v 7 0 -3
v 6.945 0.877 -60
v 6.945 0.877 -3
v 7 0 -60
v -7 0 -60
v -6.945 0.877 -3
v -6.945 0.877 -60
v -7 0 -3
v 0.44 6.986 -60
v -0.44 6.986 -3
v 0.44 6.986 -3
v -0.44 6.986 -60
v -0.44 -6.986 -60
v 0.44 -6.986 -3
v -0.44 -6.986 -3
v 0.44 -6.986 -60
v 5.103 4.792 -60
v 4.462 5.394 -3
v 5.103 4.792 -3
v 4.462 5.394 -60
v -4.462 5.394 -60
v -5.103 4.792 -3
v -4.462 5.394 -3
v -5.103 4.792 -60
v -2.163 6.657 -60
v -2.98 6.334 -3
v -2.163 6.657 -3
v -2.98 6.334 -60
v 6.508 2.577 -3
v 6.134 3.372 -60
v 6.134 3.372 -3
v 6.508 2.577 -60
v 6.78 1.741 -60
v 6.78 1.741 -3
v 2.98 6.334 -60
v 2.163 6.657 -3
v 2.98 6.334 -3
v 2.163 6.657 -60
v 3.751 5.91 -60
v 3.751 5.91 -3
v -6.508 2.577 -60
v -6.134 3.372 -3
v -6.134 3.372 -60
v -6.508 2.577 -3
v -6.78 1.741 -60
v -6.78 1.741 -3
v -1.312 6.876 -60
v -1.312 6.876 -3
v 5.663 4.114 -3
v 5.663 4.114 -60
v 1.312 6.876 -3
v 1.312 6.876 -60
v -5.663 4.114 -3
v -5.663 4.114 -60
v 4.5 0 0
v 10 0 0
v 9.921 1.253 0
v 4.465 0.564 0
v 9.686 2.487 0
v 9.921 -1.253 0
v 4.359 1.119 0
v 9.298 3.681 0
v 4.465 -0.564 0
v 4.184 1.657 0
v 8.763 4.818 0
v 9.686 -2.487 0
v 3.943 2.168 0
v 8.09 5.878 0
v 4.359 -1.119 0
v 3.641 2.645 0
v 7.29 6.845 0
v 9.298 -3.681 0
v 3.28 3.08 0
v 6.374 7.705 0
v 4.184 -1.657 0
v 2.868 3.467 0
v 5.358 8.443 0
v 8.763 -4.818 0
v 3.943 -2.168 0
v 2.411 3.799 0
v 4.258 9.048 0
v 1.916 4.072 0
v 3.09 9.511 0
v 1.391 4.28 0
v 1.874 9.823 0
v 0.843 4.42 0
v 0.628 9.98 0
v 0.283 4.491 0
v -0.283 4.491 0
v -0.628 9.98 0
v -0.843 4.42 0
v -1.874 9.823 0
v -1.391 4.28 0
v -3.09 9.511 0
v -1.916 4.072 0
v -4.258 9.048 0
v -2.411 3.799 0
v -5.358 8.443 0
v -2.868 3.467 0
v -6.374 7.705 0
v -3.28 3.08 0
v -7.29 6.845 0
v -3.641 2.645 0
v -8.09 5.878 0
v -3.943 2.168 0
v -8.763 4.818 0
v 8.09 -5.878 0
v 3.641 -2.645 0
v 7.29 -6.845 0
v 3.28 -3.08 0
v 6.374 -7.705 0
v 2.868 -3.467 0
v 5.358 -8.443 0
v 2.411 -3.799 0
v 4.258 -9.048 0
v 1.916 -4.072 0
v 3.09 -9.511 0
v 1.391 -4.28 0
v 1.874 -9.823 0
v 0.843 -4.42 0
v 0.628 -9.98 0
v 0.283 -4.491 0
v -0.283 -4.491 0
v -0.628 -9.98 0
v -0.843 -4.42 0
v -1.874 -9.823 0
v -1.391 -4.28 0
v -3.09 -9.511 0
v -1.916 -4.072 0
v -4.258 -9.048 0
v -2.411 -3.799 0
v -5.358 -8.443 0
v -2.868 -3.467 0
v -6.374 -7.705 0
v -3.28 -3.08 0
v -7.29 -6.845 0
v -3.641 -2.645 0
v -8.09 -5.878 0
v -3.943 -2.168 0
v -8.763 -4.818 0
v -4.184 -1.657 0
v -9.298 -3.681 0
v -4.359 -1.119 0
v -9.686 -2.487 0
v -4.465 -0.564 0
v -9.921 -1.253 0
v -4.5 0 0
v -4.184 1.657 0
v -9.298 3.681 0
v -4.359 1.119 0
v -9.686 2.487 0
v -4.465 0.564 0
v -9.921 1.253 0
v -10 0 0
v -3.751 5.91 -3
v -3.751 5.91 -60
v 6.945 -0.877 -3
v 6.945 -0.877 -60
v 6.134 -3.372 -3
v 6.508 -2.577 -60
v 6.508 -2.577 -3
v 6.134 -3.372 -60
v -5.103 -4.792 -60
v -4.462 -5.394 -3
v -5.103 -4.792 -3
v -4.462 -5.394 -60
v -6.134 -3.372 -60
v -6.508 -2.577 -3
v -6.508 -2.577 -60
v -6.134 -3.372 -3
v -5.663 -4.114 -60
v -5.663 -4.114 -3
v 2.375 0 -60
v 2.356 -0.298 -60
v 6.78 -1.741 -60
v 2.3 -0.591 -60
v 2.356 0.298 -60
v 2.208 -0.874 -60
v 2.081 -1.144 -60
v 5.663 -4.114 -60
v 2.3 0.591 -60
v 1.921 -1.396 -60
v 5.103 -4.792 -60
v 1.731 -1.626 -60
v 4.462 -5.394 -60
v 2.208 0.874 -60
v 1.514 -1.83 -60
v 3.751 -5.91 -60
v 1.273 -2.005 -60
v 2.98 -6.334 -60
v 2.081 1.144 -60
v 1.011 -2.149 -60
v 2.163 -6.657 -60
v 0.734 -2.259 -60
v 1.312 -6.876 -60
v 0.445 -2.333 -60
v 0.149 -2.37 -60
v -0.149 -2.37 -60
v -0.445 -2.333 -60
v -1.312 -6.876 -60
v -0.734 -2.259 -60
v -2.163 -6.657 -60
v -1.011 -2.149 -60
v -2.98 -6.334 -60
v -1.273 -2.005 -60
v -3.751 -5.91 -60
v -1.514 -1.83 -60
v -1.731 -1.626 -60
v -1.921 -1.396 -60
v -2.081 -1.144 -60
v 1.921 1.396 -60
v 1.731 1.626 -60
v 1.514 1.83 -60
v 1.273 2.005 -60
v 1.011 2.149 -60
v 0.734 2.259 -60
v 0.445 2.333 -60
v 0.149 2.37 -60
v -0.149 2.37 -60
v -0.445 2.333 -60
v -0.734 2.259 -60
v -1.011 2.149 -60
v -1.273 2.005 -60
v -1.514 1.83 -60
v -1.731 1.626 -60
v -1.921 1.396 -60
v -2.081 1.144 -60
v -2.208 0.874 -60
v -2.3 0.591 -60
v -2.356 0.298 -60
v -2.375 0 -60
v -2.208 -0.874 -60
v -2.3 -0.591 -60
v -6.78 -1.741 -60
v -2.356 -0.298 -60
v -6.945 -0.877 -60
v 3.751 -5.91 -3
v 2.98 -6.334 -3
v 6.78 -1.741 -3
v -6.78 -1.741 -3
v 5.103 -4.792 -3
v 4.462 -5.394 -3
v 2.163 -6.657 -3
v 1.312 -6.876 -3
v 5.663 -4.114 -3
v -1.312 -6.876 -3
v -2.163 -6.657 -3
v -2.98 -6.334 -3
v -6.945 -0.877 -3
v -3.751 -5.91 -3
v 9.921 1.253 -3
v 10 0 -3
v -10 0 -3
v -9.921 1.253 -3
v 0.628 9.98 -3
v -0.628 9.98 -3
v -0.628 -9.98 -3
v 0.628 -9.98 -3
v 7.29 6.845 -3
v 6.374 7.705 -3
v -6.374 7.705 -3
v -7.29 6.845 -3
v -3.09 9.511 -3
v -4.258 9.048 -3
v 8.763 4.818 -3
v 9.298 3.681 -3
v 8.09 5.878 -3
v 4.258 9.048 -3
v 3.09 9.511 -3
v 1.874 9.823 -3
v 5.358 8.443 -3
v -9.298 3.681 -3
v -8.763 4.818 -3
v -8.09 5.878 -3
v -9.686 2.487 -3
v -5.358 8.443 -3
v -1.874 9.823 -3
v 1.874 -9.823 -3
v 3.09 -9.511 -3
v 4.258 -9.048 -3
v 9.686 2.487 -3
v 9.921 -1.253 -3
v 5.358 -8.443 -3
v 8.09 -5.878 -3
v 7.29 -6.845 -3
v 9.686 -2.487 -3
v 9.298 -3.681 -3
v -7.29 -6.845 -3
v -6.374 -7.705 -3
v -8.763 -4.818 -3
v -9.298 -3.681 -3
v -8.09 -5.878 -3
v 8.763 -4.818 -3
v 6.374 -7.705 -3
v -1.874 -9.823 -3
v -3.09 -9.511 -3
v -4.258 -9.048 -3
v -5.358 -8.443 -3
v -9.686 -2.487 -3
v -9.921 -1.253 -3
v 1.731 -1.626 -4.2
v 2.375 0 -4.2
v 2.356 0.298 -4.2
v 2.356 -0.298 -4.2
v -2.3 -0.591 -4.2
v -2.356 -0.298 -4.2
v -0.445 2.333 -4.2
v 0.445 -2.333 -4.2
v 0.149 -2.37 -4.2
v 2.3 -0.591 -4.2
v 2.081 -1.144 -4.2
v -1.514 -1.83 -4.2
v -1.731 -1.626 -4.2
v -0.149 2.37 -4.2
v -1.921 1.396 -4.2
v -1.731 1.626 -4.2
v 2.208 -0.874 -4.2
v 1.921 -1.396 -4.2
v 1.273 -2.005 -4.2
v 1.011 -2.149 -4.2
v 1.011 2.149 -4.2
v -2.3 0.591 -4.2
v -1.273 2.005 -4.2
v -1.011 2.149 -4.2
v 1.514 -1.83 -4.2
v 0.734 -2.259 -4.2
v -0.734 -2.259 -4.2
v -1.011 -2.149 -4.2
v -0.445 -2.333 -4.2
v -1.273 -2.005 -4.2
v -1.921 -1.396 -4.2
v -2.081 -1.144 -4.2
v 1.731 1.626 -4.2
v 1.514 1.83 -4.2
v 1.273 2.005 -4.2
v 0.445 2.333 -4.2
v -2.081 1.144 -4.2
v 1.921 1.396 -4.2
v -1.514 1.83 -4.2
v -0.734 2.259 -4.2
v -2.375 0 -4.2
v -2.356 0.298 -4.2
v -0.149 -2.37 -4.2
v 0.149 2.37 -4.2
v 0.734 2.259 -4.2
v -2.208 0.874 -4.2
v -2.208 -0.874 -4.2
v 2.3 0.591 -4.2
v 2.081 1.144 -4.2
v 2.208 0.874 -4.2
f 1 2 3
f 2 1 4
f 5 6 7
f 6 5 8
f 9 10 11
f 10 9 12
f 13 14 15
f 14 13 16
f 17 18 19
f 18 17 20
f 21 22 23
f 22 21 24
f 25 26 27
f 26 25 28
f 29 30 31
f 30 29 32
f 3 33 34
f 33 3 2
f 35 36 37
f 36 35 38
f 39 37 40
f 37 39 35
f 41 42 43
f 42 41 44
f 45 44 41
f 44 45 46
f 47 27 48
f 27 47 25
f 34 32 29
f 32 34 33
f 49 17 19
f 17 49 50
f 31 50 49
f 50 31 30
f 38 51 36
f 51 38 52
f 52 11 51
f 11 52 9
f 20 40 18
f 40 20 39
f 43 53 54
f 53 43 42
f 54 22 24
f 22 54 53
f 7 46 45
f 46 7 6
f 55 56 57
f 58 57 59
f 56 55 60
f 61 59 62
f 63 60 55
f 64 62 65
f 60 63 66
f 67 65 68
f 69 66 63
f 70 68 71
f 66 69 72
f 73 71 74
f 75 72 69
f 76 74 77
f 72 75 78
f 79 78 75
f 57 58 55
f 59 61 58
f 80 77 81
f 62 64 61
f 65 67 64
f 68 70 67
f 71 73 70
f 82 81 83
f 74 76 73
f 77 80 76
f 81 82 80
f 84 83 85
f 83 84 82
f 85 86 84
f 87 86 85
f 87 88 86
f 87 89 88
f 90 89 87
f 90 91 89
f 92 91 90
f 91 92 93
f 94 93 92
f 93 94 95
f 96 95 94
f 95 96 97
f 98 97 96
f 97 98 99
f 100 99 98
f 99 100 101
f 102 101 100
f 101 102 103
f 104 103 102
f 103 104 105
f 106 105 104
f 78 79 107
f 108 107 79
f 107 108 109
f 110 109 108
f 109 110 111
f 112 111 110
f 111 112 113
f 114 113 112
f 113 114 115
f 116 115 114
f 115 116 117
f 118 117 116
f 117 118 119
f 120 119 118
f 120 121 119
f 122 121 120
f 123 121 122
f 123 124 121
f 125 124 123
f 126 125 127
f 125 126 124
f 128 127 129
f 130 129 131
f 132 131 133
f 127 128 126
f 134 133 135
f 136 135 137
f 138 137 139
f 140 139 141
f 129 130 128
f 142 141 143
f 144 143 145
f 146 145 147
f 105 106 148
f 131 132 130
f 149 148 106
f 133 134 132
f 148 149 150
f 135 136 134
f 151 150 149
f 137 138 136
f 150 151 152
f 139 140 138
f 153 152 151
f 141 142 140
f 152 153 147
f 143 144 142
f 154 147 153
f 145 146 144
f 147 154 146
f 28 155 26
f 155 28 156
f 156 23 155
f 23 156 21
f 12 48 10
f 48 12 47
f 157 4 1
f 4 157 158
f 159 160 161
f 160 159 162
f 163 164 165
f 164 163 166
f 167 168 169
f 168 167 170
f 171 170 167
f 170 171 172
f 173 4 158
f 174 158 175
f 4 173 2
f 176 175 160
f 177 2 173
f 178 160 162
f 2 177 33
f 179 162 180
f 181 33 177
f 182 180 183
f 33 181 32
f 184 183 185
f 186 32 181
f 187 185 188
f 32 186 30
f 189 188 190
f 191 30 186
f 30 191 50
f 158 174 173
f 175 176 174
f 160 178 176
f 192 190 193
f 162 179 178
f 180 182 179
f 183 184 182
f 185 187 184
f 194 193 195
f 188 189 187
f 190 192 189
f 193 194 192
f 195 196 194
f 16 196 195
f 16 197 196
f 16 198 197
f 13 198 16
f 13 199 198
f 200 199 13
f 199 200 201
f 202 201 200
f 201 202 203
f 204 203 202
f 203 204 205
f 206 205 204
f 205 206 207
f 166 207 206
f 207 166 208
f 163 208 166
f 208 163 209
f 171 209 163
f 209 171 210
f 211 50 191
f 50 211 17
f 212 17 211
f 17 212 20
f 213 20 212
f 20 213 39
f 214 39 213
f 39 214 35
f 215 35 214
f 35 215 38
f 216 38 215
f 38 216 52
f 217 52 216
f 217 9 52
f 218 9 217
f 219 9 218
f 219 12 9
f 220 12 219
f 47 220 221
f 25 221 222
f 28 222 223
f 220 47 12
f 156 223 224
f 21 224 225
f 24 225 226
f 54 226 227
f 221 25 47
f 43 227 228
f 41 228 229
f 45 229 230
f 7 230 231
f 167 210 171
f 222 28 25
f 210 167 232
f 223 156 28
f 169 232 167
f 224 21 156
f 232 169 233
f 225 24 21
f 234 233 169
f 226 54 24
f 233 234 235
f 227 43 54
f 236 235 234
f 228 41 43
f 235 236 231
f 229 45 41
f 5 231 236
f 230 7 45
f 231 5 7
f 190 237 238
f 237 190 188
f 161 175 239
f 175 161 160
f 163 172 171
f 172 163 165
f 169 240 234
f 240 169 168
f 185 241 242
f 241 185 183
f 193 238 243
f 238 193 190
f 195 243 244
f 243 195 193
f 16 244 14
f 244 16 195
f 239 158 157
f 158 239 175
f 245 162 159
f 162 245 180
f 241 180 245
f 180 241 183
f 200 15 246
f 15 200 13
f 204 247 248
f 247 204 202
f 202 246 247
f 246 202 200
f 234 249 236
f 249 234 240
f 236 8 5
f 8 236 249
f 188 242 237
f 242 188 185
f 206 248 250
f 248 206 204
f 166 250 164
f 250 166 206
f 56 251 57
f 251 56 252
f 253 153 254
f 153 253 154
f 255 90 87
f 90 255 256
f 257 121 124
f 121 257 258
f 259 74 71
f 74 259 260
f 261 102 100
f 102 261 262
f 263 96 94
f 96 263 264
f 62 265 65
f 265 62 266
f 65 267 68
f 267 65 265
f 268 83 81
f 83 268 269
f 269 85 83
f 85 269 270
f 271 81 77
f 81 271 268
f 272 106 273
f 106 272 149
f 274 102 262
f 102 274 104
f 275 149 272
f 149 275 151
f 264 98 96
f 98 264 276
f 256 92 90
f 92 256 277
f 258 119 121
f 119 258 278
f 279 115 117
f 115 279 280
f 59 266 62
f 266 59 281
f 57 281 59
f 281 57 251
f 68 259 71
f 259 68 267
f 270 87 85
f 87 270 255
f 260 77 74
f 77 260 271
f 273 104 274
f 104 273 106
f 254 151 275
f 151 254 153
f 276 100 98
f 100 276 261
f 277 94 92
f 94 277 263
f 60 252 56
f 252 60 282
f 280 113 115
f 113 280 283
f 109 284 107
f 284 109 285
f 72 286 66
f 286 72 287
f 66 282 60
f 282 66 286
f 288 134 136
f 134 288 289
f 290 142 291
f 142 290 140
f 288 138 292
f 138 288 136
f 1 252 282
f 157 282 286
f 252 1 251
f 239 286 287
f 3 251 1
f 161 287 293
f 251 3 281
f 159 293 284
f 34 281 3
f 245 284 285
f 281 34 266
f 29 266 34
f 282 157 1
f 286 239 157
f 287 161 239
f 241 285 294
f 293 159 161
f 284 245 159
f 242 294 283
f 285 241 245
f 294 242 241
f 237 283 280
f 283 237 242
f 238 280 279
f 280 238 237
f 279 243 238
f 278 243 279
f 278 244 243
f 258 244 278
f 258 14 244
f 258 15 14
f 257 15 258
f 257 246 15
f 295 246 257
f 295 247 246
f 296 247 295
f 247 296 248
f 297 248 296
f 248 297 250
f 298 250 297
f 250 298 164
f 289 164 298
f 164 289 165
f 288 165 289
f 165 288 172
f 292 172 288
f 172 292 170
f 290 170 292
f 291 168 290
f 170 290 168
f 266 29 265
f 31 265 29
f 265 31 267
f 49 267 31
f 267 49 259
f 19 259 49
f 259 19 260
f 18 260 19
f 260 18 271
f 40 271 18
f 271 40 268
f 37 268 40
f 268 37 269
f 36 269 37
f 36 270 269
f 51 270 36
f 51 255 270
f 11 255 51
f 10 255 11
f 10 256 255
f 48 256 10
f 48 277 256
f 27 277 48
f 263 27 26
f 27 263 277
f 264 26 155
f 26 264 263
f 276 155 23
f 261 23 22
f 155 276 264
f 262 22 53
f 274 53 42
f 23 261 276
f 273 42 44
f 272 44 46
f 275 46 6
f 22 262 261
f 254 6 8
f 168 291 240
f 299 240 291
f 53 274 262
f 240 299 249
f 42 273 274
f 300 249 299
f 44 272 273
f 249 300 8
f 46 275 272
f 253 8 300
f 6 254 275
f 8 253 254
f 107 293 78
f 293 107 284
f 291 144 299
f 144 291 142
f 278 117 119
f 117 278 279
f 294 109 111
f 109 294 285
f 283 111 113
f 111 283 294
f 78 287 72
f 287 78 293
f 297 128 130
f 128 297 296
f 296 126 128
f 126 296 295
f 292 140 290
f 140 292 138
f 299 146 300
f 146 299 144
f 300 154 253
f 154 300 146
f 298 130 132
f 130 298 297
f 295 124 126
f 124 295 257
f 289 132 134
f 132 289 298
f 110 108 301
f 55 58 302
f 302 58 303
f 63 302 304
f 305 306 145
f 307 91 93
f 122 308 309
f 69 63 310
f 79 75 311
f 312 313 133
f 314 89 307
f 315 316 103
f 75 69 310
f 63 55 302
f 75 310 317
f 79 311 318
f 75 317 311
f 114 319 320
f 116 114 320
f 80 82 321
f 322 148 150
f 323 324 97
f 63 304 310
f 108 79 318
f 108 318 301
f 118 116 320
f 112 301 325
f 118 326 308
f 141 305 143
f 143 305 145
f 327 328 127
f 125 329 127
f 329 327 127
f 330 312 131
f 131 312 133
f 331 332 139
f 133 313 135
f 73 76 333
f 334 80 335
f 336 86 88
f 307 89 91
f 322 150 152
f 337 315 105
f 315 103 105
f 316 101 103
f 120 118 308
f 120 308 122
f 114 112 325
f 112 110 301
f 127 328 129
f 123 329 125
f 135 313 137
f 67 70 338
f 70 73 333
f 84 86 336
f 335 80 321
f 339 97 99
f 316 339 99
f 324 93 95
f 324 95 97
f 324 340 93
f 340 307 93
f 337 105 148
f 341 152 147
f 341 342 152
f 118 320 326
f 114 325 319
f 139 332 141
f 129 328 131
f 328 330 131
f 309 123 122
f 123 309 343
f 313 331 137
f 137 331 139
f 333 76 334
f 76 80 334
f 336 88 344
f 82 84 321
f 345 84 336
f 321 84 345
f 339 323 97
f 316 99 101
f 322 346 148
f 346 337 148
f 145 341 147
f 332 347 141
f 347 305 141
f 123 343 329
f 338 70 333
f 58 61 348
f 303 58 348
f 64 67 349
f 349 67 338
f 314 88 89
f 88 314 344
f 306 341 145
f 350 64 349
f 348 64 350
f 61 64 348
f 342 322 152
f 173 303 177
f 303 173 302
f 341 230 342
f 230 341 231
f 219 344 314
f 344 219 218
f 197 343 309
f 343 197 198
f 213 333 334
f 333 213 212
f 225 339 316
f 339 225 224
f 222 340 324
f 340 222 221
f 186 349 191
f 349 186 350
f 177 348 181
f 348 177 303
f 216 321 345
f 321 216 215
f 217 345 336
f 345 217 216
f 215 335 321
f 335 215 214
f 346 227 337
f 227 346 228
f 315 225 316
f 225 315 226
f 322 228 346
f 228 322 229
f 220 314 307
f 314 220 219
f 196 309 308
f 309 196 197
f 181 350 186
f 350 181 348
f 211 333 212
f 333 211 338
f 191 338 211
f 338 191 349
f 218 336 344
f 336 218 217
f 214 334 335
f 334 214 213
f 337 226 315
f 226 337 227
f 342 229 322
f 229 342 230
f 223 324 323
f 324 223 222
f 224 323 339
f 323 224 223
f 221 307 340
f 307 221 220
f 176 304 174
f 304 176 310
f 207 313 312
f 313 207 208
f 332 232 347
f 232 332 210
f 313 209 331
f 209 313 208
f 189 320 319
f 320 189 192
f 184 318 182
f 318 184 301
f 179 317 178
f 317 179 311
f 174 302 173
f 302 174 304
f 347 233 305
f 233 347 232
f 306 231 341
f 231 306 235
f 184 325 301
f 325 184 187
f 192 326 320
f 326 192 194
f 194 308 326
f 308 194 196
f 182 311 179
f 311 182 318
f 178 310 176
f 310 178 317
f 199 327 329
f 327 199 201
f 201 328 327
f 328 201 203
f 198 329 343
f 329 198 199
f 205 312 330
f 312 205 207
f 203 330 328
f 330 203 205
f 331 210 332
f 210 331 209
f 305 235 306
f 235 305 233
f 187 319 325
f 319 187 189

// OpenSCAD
$fn = 50;


difference() {
	union() {
		translate(v = [0, 0, -60.0000000000]) {
			cylinder(h = 60, r = 7.0000000000);
		}
		translate(v = [0, 0, -3.0000000000]) {
			cylinder(h = 3, r = 10.0000000000);
		}
	}
	union() {
		translate(v = [0, 0, 0]) {
			rotate(a = [0, 0, 0]) {
				difference() {
					union() {
						#translate(v = [0, 0, -60.0000000000]) {
							cylinder(h = 60, r = 2.2500000000);
						}
						#translate(v = [0, 0, -4.2000000000]) {
							cylinder(h = 4.2000000000, r = 7.0000000000, r1 = 2.3750000000, r2 = 4.5000000000);
						}
						#translate(v = [0, 0, -60.0000000000]) {
							cylinder(h = 60, r = 2.3750000000);
						}
						#translate(v = [0, 0, -60.0000000000]) {
							cylinder(h = 60, r = 2.2500000000);
						}
					}
					union();
				}
			}
		}
	}
}
